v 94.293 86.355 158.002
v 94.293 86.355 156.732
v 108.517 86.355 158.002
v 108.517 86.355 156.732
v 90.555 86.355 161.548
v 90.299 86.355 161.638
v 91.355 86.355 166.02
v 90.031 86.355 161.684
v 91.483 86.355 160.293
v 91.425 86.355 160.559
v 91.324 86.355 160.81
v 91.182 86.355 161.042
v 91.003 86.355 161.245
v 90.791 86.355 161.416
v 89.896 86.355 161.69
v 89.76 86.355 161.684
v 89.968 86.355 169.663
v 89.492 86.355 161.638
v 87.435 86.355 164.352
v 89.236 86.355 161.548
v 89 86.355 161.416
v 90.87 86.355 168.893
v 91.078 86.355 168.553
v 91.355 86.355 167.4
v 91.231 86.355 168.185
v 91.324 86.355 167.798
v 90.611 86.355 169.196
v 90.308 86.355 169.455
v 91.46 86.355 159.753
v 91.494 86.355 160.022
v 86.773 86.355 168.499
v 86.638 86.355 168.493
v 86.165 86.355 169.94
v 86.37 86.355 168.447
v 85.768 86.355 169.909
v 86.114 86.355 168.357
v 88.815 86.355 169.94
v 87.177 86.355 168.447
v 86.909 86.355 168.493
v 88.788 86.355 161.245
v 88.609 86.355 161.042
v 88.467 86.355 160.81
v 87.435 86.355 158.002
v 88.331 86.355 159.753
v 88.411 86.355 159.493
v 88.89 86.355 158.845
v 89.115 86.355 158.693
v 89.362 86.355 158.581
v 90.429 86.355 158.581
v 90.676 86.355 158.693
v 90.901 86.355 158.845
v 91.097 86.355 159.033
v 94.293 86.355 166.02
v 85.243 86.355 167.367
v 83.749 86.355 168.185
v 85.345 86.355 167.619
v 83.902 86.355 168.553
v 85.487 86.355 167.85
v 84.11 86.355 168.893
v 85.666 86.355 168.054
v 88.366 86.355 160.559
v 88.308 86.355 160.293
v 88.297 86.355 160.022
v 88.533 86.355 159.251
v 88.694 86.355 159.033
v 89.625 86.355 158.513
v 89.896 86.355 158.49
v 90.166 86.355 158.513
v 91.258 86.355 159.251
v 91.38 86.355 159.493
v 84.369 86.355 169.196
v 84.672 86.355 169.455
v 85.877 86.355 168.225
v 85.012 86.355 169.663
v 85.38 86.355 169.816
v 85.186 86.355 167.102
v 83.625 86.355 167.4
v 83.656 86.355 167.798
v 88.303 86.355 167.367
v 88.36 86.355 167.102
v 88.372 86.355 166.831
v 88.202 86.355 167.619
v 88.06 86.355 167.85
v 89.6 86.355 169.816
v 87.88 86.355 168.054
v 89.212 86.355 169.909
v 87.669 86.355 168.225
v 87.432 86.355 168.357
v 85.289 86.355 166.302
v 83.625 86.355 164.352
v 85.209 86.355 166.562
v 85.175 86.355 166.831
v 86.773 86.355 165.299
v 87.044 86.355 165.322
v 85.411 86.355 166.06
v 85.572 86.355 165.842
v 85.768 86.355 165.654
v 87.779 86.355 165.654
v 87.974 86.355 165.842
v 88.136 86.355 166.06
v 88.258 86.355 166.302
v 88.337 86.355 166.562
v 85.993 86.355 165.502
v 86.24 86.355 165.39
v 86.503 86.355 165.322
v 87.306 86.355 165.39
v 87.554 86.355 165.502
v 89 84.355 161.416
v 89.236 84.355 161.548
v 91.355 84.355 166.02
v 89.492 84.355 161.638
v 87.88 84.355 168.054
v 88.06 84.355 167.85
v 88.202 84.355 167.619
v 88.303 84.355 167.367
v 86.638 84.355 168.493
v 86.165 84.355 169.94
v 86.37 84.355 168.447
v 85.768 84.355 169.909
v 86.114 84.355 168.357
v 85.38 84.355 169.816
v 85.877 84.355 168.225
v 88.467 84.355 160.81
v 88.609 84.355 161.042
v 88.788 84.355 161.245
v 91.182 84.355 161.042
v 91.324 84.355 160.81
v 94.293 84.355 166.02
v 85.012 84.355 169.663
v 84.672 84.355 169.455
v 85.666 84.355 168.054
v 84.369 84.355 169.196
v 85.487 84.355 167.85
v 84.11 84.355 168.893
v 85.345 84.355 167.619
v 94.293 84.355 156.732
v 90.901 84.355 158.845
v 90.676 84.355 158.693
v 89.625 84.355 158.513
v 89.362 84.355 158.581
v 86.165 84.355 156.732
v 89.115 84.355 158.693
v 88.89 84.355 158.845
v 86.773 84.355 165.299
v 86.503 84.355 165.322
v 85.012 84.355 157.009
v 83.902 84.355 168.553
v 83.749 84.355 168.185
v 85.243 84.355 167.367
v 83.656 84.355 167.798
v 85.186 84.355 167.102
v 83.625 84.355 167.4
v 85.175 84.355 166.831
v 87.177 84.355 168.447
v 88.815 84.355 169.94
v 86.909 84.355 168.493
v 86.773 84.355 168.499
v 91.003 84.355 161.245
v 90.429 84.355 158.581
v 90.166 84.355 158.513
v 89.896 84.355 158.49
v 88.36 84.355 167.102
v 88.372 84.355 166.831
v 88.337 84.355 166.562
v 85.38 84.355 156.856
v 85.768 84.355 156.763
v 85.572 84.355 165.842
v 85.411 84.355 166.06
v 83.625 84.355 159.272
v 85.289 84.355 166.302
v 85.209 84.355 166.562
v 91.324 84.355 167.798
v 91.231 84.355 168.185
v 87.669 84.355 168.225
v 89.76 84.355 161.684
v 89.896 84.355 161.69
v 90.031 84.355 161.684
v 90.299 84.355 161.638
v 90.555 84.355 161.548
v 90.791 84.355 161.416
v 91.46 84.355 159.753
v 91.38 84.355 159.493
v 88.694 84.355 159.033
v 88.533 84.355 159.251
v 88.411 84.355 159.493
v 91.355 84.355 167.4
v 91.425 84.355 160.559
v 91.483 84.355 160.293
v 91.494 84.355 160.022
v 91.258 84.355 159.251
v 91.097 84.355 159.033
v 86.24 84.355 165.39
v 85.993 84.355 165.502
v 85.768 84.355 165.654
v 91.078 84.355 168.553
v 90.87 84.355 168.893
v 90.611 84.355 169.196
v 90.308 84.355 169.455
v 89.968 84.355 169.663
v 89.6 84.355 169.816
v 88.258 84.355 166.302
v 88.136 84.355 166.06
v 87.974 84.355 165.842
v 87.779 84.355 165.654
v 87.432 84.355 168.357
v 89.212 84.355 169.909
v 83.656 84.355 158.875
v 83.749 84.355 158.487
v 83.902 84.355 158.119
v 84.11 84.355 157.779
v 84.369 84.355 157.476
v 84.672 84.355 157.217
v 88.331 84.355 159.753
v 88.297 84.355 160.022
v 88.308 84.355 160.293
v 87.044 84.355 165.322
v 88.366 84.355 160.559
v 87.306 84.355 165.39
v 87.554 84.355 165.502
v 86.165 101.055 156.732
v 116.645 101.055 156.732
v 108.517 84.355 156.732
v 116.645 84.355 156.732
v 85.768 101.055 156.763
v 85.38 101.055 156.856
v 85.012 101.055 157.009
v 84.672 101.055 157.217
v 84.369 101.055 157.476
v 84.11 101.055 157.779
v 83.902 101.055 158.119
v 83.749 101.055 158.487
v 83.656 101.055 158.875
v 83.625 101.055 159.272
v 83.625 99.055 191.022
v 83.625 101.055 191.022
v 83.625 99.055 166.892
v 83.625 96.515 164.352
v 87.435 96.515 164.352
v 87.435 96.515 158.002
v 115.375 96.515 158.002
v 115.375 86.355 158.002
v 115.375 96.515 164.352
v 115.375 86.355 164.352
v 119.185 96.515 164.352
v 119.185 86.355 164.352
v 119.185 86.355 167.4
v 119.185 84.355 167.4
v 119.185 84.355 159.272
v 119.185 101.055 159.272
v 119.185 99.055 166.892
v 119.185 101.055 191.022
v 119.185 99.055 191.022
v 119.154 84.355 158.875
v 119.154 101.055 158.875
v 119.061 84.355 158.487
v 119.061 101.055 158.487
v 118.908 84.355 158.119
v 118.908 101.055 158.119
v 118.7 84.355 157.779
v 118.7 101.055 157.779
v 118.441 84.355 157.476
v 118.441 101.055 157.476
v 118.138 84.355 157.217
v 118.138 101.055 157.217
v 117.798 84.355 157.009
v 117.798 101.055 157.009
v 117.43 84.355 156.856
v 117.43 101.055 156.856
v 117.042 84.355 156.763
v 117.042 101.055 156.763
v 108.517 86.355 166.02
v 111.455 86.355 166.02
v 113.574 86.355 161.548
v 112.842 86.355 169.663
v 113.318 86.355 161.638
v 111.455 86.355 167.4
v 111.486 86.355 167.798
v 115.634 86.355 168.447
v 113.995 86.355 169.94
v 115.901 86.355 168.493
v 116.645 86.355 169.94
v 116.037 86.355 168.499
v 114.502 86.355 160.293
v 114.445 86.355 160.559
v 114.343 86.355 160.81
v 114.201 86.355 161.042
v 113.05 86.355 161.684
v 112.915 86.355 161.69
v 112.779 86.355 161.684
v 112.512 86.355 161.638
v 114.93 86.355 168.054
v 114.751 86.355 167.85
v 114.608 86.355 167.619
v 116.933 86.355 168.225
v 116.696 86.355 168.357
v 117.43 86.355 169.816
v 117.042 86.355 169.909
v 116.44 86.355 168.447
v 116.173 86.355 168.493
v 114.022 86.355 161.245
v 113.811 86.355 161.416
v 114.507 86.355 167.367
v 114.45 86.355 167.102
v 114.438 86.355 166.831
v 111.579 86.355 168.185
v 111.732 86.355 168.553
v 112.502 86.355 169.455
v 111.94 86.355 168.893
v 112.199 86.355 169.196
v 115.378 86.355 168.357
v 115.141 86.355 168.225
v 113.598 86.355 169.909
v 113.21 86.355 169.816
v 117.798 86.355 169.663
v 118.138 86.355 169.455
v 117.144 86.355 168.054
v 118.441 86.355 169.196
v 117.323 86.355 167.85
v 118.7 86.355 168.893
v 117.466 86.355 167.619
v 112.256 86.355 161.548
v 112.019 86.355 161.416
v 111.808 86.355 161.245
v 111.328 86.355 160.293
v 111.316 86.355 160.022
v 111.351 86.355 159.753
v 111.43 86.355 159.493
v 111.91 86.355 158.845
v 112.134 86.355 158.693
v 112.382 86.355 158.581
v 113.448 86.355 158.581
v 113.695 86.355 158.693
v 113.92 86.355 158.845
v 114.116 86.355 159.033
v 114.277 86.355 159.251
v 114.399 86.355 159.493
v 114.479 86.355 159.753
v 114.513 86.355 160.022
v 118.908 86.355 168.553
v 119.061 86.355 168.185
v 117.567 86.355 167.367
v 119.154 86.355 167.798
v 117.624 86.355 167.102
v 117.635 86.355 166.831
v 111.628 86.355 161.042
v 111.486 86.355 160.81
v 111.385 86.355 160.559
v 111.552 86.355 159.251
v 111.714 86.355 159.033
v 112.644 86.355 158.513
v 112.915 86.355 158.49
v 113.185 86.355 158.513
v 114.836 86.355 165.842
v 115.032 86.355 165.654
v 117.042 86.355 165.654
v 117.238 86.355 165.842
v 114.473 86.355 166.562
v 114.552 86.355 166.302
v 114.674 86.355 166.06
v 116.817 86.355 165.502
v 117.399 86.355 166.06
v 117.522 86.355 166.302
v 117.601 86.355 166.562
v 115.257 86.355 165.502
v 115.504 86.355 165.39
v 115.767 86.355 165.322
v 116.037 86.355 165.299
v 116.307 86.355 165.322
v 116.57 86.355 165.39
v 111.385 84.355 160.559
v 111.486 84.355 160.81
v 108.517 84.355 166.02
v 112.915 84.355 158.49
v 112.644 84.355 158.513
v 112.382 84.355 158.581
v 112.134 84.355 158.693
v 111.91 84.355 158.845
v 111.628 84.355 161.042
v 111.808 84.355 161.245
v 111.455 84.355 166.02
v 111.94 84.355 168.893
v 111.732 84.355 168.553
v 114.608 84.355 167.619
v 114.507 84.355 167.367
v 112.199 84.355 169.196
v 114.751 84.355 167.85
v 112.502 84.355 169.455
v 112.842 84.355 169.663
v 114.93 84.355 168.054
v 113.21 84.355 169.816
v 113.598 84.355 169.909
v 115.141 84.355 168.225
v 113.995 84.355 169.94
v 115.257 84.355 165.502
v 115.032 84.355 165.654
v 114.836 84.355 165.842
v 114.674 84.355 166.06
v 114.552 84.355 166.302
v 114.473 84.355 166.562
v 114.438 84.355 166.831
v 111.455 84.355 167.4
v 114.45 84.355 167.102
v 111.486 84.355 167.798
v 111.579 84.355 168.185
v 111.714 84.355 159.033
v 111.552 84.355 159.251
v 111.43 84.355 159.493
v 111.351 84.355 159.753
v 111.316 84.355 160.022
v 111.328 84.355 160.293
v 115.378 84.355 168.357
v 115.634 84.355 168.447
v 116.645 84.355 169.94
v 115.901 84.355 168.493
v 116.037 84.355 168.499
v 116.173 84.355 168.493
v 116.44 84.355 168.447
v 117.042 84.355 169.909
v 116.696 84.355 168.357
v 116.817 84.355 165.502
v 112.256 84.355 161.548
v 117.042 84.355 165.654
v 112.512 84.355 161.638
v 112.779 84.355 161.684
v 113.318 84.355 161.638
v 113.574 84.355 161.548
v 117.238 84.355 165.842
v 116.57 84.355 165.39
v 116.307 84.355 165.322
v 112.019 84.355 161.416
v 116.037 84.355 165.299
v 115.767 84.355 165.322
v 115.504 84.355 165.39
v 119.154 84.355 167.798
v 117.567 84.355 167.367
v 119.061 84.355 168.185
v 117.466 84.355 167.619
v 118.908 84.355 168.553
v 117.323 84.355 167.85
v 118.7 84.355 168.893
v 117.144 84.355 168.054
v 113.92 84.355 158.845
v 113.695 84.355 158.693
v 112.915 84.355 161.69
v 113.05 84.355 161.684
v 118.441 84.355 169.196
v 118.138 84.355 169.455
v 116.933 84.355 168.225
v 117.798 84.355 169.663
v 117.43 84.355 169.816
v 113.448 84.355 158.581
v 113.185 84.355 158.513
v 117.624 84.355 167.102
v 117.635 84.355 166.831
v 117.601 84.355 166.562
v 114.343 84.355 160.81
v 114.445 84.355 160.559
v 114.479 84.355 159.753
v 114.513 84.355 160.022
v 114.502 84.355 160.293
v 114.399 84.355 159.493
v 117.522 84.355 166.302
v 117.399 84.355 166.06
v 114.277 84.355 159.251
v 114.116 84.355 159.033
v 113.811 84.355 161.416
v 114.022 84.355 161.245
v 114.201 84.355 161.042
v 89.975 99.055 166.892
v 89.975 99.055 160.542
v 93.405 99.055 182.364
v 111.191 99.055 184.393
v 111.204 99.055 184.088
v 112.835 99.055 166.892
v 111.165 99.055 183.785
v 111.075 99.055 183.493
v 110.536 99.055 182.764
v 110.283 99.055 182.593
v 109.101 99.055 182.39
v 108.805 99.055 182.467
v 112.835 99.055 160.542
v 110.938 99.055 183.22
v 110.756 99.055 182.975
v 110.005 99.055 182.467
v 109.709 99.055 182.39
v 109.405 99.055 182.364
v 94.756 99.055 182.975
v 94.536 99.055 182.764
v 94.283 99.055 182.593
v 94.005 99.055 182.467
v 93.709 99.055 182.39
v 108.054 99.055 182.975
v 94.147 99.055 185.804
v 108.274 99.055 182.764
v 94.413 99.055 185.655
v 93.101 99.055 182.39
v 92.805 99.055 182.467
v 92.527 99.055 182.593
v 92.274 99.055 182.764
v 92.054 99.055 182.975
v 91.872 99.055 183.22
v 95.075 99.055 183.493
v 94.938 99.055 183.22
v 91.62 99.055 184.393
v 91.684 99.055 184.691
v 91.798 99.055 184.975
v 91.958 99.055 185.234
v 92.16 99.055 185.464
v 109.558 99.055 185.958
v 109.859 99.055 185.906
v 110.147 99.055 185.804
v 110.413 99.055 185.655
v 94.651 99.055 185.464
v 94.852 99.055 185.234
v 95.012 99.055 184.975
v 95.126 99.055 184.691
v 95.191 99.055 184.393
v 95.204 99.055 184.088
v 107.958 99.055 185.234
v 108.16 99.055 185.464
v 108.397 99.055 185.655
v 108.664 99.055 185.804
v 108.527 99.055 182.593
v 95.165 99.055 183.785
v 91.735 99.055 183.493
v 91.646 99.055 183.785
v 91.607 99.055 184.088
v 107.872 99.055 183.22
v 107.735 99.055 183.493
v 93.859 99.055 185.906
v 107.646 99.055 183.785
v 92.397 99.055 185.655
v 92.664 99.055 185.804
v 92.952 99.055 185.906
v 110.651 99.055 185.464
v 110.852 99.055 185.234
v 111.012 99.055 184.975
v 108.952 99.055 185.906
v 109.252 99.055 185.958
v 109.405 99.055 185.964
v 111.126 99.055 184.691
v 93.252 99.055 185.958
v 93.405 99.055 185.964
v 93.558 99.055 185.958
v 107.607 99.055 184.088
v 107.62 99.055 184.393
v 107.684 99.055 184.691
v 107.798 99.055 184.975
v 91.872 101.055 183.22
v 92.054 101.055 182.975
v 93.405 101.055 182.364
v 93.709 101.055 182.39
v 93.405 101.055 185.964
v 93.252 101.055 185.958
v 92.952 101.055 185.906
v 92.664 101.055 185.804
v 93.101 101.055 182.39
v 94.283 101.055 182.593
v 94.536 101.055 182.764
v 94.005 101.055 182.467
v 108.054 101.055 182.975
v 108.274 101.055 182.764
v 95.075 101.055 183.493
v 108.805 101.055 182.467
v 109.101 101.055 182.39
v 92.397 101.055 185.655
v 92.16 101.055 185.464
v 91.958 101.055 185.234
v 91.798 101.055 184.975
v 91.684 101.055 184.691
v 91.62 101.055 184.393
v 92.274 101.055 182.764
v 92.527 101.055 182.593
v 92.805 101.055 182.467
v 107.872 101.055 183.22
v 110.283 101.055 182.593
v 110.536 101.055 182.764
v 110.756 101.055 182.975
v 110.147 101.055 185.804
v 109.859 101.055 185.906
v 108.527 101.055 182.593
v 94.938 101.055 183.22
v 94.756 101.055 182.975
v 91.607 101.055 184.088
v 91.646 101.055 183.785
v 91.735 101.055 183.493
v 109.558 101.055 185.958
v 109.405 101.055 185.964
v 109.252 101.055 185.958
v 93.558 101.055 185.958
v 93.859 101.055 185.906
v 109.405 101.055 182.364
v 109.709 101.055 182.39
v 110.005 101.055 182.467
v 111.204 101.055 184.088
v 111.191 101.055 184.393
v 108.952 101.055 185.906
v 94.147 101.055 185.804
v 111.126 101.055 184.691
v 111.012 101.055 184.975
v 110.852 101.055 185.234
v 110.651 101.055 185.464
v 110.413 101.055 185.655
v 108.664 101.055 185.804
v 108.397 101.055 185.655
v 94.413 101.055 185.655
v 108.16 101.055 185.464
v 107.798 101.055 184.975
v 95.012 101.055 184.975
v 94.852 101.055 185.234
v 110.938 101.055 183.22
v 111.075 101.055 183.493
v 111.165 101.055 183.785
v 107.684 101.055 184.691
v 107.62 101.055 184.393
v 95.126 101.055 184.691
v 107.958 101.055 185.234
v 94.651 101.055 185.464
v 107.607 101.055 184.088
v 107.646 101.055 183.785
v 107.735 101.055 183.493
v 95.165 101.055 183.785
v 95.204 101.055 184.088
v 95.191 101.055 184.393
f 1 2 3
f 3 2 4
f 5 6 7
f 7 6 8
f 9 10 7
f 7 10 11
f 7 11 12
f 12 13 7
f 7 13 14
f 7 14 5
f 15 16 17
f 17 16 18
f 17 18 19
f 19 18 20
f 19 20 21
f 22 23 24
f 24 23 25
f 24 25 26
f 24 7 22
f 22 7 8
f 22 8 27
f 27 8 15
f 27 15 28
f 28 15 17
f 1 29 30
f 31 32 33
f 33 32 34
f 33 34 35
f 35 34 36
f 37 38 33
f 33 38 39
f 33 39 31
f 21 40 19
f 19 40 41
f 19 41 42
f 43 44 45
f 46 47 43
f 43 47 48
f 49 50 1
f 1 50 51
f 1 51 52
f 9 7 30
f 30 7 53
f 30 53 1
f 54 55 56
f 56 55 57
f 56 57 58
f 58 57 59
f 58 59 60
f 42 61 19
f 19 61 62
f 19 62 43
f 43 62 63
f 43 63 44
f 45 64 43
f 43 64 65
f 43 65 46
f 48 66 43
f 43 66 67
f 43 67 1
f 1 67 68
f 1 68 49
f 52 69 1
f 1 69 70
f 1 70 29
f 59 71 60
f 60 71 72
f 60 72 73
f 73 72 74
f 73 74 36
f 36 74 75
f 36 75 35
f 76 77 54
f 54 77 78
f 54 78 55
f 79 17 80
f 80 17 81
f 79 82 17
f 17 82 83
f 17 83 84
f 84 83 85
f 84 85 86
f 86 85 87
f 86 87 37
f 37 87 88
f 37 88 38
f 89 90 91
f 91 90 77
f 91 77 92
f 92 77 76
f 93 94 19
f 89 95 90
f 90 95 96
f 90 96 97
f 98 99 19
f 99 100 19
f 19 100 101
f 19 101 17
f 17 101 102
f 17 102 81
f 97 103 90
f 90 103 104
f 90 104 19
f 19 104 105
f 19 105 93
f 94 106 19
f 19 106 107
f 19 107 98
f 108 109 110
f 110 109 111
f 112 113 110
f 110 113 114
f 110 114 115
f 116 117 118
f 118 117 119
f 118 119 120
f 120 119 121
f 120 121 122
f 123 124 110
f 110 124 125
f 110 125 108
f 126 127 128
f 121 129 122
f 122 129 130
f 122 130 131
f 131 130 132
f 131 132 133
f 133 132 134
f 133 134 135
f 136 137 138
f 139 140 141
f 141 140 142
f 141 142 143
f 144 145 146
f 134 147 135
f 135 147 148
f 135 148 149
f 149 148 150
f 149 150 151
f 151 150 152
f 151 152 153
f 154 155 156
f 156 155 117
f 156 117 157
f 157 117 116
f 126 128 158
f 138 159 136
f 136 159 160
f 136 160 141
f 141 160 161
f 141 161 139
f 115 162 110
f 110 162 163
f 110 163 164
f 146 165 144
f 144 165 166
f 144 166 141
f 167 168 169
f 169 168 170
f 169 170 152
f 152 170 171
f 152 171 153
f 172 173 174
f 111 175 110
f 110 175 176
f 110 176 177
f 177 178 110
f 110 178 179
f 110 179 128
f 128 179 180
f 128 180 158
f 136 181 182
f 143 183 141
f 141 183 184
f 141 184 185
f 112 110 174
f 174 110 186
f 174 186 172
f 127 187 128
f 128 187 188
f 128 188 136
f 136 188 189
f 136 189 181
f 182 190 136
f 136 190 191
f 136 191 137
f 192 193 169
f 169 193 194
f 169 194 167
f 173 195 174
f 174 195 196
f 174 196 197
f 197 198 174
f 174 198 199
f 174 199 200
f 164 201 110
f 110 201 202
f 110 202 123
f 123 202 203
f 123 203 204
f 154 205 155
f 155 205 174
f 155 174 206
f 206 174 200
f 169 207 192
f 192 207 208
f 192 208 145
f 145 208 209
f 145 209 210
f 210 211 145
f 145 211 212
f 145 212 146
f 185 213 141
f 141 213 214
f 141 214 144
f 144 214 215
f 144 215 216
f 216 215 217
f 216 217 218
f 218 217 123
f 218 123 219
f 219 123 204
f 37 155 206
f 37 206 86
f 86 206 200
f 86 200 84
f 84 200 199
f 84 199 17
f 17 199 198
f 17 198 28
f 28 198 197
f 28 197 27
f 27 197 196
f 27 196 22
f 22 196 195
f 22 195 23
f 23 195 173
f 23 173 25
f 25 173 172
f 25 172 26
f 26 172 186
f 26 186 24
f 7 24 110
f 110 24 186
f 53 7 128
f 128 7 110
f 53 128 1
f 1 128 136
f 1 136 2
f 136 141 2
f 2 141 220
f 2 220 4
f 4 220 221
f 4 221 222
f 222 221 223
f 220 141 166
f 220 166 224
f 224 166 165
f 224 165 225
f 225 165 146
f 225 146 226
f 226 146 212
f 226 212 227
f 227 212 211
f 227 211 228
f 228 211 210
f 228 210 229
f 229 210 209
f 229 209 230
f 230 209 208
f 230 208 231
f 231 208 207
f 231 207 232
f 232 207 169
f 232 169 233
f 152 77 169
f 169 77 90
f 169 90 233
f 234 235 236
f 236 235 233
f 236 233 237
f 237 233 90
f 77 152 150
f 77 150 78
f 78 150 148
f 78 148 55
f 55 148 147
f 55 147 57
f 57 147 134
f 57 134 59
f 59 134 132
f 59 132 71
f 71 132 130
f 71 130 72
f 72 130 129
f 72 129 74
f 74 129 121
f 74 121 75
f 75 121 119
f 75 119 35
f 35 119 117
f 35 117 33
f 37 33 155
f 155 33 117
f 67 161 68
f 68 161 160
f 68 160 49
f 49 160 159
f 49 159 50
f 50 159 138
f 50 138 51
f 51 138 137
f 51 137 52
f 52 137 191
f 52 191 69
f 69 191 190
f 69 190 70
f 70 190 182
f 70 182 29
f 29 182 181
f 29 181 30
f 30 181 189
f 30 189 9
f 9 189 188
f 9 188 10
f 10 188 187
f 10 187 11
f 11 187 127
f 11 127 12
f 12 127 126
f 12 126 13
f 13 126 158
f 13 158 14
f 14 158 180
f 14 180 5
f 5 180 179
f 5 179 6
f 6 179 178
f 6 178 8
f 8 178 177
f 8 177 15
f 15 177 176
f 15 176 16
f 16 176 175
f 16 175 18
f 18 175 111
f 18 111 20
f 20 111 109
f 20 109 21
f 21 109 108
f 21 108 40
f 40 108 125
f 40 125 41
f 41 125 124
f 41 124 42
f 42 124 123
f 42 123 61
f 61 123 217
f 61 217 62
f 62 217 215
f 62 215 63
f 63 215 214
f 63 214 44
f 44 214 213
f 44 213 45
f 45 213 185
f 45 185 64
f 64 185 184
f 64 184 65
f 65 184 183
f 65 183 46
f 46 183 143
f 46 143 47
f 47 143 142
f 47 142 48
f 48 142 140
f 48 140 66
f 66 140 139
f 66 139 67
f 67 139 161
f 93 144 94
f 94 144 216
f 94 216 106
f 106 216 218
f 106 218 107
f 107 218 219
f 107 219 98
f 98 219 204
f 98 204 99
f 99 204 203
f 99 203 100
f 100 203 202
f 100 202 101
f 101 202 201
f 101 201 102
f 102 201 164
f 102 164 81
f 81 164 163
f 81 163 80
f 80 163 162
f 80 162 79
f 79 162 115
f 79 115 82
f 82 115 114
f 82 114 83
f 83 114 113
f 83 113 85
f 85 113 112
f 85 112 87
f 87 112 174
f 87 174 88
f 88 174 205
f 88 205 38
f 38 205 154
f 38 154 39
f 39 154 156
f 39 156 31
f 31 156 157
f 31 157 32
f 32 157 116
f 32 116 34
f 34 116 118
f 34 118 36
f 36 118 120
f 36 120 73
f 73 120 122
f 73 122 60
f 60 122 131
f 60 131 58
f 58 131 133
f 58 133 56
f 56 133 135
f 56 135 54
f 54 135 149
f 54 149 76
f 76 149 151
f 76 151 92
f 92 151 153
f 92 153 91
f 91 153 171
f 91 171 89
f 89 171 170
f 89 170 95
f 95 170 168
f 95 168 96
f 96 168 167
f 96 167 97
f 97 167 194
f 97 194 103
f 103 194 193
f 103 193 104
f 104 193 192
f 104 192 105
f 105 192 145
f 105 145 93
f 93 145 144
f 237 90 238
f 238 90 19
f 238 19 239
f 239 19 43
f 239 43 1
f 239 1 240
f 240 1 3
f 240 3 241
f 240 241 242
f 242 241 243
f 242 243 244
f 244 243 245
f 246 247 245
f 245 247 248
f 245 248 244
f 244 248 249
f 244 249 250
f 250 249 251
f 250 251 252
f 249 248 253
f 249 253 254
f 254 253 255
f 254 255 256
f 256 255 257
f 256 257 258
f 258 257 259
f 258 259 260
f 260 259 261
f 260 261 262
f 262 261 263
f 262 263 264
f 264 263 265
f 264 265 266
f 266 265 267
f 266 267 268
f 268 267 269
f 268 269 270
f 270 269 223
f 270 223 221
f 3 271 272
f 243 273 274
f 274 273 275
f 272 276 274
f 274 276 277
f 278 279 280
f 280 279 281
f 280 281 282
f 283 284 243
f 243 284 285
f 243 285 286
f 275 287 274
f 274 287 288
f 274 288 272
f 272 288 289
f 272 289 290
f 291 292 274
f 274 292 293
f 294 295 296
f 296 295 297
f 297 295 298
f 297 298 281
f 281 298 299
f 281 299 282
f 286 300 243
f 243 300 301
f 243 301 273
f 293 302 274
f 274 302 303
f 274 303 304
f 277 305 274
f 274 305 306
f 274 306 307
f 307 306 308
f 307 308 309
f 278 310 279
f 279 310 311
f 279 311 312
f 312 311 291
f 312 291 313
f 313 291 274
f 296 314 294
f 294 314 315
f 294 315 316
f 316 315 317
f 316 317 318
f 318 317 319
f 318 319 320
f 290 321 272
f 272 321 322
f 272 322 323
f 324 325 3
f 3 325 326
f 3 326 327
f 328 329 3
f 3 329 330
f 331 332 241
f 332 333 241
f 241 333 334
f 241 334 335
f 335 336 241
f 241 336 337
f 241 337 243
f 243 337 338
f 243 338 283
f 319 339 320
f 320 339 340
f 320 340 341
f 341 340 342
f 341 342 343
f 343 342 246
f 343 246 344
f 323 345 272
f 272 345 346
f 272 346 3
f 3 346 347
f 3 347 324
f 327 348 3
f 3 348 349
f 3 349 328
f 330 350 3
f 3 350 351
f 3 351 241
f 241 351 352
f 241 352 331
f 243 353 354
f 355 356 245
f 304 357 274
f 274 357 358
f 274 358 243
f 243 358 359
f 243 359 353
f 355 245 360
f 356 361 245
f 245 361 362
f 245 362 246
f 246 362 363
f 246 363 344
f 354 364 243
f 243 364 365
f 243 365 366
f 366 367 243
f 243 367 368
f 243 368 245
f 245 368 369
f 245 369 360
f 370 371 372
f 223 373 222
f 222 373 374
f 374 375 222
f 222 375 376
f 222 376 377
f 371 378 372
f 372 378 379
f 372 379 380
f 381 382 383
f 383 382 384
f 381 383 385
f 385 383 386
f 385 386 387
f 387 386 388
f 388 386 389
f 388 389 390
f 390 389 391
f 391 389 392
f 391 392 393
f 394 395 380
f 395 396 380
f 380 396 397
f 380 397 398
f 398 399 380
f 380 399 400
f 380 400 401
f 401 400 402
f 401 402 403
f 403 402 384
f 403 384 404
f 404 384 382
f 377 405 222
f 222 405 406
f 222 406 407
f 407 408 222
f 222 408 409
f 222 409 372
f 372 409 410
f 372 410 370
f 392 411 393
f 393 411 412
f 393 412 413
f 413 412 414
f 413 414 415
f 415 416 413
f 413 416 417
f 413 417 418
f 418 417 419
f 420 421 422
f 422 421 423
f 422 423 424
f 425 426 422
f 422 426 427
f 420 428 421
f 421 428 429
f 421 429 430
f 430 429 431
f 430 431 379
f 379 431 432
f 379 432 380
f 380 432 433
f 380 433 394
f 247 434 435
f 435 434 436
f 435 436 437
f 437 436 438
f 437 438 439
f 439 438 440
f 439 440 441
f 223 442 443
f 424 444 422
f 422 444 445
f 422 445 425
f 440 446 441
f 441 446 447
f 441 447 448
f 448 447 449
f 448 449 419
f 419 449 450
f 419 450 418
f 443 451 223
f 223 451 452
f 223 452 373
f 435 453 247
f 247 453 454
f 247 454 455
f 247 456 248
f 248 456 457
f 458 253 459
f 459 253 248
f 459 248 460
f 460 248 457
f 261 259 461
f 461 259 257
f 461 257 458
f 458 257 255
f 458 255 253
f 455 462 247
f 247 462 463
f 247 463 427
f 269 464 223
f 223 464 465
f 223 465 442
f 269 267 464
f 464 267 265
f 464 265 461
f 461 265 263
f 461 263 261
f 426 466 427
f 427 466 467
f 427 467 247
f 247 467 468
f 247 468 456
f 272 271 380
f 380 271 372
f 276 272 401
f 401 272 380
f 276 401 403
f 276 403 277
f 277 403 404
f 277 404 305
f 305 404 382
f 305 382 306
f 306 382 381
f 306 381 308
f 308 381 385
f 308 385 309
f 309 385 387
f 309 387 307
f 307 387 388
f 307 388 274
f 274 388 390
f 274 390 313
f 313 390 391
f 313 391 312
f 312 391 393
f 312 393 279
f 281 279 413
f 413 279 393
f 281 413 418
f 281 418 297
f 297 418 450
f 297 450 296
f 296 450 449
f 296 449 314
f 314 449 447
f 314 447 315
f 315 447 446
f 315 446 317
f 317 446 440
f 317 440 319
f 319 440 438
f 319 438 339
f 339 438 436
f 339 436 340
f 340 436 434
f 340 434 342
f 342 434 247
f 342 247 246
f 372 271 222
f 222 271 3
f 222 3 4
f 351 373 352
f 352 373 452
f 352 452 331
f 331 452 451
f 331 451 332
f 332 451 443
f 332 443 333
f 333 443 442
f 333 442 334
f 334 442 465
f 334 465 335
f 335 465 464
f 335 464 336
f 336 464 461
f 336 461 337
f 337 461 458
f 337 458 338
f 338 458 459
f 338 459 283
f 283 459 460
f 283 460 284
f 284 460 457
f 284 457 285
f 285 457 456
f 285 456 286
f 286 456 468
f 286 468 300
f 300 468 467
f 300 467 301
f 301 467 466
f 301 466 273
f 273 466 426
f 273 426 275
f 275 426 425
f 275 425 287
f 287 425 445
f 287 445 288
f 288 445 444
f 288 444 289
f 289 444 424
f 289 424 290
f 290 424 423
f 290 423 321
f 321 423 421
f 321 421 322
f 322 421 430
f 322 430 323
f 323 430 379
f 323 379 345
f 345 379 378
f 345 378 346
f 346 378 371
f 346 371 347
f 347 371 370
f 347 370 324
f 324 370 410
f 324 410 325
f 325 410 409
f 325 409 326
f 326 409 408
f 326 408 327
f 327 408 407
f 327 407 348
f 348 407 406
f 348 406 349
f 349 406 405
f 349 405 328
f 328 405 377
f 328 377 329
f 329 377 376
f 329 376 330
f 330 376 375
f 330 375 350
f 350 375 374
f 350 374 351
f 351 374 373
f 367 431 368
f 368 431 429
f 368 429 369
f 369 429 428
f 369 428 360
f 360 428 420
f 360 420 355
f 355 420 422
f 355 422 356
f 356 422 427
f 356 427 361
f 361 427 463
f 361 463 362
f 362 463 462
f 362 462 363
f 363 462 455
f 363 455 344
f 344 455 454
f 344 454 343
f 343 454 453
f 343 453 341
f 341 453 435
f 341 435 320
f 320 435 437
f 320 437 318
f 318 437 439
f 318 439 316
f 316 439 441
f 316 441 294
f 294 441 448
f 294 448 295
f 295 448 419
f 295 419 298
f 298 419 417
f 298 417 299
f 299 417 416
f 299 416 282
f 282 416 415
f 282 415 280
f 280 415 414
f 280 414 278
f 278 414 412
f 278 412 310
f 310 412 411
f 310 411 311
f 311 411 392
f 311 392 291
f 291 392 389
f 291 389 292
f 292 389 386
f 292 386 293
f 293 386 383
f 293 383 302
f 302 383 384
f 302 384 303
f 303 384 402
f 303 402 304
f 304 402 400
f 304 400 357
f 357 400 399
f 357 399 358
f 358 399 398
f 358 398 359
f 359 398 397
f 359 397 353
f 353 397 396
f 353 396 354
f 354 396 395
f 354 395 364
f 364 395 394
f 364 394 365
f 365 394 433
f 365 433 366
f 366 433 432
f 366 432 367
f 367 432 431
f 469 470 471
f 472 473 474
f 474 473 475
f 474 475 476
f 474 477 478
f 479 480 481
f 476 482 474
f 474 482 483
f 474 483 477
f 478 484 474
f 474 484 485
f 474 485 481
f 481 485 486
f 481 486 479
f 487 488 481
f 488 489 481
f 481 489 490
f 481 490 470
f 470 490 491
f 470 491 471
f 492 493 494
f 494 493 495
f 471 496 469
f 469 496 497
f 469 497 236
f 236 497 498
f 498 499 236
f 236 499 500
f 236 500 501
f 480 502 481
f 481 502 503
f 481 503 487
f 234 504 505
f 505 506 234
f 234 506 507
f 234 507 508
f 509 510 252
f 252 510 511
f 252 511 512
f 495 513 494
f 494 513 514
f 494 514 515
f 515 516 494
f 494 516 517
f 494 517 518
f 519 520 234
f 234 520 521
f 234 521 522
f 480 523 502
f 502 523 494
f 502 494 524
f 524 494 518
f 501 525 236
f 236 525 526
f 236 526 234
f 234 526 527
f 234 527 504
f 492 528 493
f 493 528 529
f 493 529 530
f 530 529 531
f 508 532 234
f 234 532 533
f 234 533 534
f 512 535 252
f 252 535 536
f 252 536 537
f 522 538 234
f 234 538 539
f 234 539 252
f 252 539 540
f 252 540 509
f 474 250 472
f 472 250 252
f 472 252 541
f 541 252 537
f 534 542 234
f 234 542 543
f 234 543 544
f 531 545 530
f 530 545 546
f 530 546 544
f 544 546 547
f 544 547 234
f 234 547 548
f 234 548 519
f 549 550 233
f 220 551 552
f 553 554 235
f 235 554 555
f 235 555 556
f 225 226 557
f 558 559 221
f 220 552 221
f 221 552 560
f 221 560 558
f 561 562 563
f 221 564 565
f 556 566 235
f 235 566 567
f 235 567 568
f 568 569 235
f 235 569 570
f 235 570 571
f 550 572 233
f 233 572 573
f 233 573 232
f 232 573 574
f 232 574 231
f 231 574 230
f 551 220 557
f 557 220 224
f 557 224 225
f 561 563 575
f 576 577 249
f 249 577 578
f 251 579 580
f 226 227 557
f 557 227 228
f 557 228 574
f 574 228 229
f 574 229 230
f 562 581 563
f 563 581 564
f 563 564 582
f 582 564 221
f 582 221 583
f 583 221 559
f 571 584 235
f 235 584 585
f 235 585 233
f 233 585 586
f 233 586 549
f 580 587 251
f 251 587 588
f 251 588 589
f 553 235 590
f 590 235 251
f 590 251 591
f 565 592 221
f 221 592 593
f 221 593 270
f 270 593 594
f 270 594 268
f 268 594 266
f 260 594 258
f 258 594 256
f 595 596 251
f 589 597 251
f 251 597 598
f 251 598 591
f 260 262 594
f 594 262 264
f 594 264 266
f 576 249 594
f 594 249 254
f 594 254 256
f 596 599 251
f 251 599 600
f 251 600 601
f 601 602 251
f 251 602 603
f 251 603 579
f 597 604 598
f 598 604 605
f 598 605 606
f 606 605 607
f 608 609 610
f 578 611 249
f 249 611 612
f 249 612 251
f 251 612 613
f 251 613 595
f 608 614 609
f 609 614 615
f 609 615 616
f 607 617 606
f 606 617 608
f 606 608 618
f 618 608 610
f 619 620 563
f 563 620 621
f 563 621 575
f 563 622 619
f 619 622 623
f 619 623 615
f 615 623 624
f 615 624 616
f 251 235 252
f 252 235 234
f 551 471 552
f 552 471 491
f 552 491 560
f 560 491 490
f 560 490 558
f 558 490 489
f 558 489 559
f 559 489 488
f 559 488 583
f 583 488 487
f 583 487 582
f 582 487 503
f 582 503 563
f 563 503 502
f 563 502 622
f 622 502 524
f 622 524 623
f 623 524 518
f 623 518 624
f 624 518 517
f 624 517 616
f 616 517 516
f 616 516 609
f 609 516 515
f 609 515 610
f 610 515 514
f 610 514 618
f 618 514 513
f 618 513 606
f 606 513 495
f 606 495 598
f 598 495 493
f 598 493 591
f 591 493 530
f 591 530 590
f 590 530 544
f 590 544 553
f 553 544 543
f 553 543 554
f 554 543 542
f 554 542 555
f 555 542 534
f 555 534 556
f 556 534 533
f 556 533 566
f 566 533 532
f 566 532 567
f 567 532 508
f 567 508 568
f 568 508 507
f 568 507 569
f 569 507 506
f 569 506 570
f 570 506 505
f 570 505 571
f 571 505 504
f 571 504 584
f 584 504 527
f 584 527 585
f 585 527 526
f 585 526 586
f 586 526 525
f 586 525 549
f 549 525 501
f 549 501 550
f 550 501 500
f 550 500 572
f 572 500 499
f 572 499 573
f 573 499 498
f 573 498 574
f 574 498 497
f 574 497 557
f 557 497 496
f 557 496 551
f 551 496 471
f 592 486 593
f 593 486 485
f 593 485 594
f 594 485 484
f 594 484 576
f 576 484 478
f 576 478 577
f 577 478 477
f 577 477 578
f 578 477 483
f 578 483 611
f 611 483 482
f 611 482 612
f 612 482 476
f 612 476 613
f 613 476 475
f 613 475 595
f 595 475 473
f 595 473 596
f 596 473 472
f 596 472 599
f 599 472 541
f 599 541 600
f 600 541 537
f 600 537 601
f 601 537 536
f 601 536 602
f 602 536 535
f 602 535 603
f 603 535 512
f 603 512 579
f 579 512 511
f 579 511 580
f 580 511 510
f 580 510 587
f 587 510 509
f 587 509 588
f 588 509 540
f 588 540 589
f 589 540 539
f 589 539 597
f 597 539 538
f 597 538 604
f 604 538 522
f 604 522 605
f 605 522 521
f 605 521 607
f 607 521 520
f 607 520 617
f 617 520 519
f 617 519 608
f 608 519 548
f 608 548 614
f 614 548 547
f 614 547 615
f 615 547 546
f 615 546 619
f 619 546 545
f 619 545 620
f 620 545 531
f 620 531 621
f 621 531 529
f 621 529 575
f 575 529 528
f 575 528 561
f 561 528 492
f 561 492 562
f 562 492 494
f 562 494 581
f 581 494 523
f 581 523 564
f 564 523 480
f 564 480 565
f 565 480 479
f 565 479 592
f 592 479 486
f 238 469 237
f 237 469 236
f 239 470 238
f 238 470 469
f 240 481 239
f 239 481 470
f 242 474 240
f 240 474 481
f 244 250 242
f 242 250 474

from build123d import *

# Parameters (mm, degrees)
SKETCH2_R             = 1.6
BOSS_EXTRUDE1_DEPTH   = 2
BOSS_EXTRUDE1_2_DEPTH = 2
BOSS_EXTRUDE2_DEPTH   = 12.7
SKETCH4_R             = 1.8
BOSS_EXTRUDE3_DEPTH   = 2
CHAMFER1_SIZE         = 2.54


with BuildPart() as part:
    # Sketch2 → Boss-Extrude1 (new body)
    with BuildSketch(Plane(origin=(0, 84.355025863, 0), x_dir=(1, 0, 0), z_dir=(0, 1, 0))):
        with BuildLine():
            Line((86.165130669, -169.940155685), (88.815130669, -169.940155685))
            ThreePointArc((88.815130669, -169.940155685), (90.611181893, -169.196206909), (91.355130669, -167.400155685))
            Line((91.355130669, -167.400155685), (91.355130669, -166.020155685))
            Line((91.355130669, -166.020155685), (94.293130669, -166.020155685))
            Line((94.293130669, -166.020155685), (94.293130669, -163.082155685))
            Line((94.293130669, -163.082155685), (94.293130669, -156.732155685))
            Line((94.293130669, -156.732155685), (86.165130669, -156.732155685))
            ThreePointArc((86.165130669, -156.732155685), (84.369079444, -157.47610446), (83.625130669, -159.272155685))
            Line((83.625130669, -159.272155685), (83.625130669, -167.400155685))
            ThreePointArc((83.625130669, -167.400155685), (84.369079444, -169.196206909), (86.165130669, -169.940155685))
        make_face()
        with Locations(Location((86.773356517, -166.898975693, 0), (0, 0, 270))):
            Circle(SKETCH2_R, mode=Mode.SUBTRACT)
        with Locations(Location((89.895511725, -160.090079663, 0), (0, 0, 270))):
            Circle(SKETCH2_R, mode=Mode.SUBTRACT)
    extrude(amount=BOSS_EXTRUDE1_DEPTH)



with BuildPart() as body_2:
    # Sketch2 → Boss-Extrude1 2 (new body)
    with BuildSketch(Plane(origin=(0, 84.355025863, 0), x_dir=(1, 0, 0), z_dir=(0, 1, 0))):
        with BuildLine():
            Line((113.995130669, -169.940155685), (116.645130669, -169.940155685))
            ThreePointArc((116.645130669, -169.940155685), (118.441181893, -169.196206909), (119.185130669, -167.400155685))
            Line((119.185130669, -167.400155685), (119.185130669, -159.272155685))
            ThreePointArc((119.185130669, -159.272155685), (118.441181893, -157.47610446), (116.645130669, -156.732155685))
            Line((116.645130669, -156.732155685), (108.517130669, -156.732155685))
            Line((108.517130669, -156.732155685), (108.517130669, -163.082155685))
            Line((108.517130669, -163.082155685), (108.517130669, -166.020155685))
            Line((108.517130669, -166.020155685), (111.455130669, -166.020155685))
            Line((111.455130669, -166.020155685), (111.455130669, -167.400155685))
            ThreePointArc((111.455130669, -167.400155685), (112.199079444, -169.196206909), (113.995130669, -169.940155685))
        make_face()
        with Locations(Location((116.03690482, -166.898975693, 0), (0, 0, 270))):
            Circle(SKETCH2_R, mode=Mode.SUBTRACT)
        with Locations(Location((112.914749612, -160.090079663, 0), (0, 0, 270))):
            Circle(SKETCH2_R, mode=Mode.SUBTRACT)
    extrude(amount=BOSS_EXTRUDE1_2_DEPTH)


with BuildPart() as part_1:
    add(part.part)

    add(body_2.part)  # Boss-Extrude2 merges body 2
    # Sketch3 → Boss-Extrude2 (add)
    with BuildSketch(Plane(origin=(0, 86.355025863, 0), x_dir=(1, 0, 0), z_dir=(0, 1, 0))):
        with BuildLine():
            Line((108.517130669, -158.002155685), (108.517130669, -156.732155685))
            Line((108.517130669, -156.732155685), (94.293130669, -156.732155685))
            Line((94.293130669, -156.732155685), (86.165130669, -156.732155685))
            ThreePointArc((86.165130669, -156.732155685), (84.369079444, -157.47610446), (83.625130669, -159.272155685))
            Line((83.625130669, -159.272155685), (83.625130669, -164.352155685))
            Line((83.625130669, -164.352155685), (87.435130669, -164.352155685))
            Line((87.435130669, -164.352155685), (87.435130669, -158.002155685))
            Line((87.435130669, -158.002155685), (108.517130669, -158.002155685))
        make_face()
        with BuildLine():
            Line((115.375130669, -164.352155685), (119.185130669, -164.352155685))
            Line((119.185130669, -164.352155685), (119.185130669, -159.272155685))
            ThreePointArc((119.185130669, -159.272155685), (118.441181893, -157.47610446), (116.645130669, -156.732155685))
            Line((116.645130669, -156.732155685), (108.517130669, -156.732155685))
            Line((108.517130669, -156.732155685), (108.517130669, -158.002155685))
            Line((108.517130669, -158.002155685), (115.375130669, -158.002155685))
            Line((115.375130669, -158.002155685), (115.375130669, -164.352155685))
        make_face()
    extrude(amount=BOSS_EXTRUDE2_DEPTH)

    # Sketch4 → Boss-Extrude3 (add)
    with BuildSketch(Plane(origin=(0, 99.055025863, 0), x_dir=(1, 0, 0), z_dir=(0, 1, 0))):
        with BuildLine():
            Line((83.625130669, -164.352155685), (83.625130669, -191.022155685))
            Line((83.625130669, -191.022155685), (119.185130669, -191.022155685))
            Line((119.185130669, -191.022155685), (119.185130669, -164.352155685))
            Line((119.185130669, -164.352155685), (119.185130669, -159.272155685))
            ThreePointArc((119.185130669, -159.272155685), (118.441181893, -157.47610446), (116.645130669, -156.732155685))
            Line((116.645130669, -156.732155685), (86.165130669, -156.732155685))
            ThreePointArc((86.165130669, -156.732155685), (84.369079444, -157.47610446), (83.625130669, -159.272155685))
            Line((83.625130669, -159.272155685), (83.625130669, -164.352155685))
        make_face()
        with Locations(Location((93.405130669, -184.164155685, 0), (0, 0, 270))):
            Circle(SKETCH4_R, mode=Mode.SUBTRACT)
        with Locations(Location((109.405130669, -184.164155685, 0), (0, 0, 270))):
            Circle(SKETCH4_R, mode=Mode.SUBTRACT)
    extrude(amount=BOSS_EXTRUDE3_DEPTH)

    # Chamfer1
    chamfer1_edges = [part_1.edges().sort_by_distance(p)[0] for p in [
        (85.530130669, 99.055025863, 164.352155685),
        (87.435130669, 99.055025863, 161.177155685),
        (101.405130669, 99.055025863, 158.002155685),
        (115.375130669, 99.055025863, 161.177155685),
        (117.280130669, 99.055025863, 164.352155685),
    ]]
    chamfer(chamfer1_edges, length=CHAMFER1_SIZE)


solid = part_1.part
